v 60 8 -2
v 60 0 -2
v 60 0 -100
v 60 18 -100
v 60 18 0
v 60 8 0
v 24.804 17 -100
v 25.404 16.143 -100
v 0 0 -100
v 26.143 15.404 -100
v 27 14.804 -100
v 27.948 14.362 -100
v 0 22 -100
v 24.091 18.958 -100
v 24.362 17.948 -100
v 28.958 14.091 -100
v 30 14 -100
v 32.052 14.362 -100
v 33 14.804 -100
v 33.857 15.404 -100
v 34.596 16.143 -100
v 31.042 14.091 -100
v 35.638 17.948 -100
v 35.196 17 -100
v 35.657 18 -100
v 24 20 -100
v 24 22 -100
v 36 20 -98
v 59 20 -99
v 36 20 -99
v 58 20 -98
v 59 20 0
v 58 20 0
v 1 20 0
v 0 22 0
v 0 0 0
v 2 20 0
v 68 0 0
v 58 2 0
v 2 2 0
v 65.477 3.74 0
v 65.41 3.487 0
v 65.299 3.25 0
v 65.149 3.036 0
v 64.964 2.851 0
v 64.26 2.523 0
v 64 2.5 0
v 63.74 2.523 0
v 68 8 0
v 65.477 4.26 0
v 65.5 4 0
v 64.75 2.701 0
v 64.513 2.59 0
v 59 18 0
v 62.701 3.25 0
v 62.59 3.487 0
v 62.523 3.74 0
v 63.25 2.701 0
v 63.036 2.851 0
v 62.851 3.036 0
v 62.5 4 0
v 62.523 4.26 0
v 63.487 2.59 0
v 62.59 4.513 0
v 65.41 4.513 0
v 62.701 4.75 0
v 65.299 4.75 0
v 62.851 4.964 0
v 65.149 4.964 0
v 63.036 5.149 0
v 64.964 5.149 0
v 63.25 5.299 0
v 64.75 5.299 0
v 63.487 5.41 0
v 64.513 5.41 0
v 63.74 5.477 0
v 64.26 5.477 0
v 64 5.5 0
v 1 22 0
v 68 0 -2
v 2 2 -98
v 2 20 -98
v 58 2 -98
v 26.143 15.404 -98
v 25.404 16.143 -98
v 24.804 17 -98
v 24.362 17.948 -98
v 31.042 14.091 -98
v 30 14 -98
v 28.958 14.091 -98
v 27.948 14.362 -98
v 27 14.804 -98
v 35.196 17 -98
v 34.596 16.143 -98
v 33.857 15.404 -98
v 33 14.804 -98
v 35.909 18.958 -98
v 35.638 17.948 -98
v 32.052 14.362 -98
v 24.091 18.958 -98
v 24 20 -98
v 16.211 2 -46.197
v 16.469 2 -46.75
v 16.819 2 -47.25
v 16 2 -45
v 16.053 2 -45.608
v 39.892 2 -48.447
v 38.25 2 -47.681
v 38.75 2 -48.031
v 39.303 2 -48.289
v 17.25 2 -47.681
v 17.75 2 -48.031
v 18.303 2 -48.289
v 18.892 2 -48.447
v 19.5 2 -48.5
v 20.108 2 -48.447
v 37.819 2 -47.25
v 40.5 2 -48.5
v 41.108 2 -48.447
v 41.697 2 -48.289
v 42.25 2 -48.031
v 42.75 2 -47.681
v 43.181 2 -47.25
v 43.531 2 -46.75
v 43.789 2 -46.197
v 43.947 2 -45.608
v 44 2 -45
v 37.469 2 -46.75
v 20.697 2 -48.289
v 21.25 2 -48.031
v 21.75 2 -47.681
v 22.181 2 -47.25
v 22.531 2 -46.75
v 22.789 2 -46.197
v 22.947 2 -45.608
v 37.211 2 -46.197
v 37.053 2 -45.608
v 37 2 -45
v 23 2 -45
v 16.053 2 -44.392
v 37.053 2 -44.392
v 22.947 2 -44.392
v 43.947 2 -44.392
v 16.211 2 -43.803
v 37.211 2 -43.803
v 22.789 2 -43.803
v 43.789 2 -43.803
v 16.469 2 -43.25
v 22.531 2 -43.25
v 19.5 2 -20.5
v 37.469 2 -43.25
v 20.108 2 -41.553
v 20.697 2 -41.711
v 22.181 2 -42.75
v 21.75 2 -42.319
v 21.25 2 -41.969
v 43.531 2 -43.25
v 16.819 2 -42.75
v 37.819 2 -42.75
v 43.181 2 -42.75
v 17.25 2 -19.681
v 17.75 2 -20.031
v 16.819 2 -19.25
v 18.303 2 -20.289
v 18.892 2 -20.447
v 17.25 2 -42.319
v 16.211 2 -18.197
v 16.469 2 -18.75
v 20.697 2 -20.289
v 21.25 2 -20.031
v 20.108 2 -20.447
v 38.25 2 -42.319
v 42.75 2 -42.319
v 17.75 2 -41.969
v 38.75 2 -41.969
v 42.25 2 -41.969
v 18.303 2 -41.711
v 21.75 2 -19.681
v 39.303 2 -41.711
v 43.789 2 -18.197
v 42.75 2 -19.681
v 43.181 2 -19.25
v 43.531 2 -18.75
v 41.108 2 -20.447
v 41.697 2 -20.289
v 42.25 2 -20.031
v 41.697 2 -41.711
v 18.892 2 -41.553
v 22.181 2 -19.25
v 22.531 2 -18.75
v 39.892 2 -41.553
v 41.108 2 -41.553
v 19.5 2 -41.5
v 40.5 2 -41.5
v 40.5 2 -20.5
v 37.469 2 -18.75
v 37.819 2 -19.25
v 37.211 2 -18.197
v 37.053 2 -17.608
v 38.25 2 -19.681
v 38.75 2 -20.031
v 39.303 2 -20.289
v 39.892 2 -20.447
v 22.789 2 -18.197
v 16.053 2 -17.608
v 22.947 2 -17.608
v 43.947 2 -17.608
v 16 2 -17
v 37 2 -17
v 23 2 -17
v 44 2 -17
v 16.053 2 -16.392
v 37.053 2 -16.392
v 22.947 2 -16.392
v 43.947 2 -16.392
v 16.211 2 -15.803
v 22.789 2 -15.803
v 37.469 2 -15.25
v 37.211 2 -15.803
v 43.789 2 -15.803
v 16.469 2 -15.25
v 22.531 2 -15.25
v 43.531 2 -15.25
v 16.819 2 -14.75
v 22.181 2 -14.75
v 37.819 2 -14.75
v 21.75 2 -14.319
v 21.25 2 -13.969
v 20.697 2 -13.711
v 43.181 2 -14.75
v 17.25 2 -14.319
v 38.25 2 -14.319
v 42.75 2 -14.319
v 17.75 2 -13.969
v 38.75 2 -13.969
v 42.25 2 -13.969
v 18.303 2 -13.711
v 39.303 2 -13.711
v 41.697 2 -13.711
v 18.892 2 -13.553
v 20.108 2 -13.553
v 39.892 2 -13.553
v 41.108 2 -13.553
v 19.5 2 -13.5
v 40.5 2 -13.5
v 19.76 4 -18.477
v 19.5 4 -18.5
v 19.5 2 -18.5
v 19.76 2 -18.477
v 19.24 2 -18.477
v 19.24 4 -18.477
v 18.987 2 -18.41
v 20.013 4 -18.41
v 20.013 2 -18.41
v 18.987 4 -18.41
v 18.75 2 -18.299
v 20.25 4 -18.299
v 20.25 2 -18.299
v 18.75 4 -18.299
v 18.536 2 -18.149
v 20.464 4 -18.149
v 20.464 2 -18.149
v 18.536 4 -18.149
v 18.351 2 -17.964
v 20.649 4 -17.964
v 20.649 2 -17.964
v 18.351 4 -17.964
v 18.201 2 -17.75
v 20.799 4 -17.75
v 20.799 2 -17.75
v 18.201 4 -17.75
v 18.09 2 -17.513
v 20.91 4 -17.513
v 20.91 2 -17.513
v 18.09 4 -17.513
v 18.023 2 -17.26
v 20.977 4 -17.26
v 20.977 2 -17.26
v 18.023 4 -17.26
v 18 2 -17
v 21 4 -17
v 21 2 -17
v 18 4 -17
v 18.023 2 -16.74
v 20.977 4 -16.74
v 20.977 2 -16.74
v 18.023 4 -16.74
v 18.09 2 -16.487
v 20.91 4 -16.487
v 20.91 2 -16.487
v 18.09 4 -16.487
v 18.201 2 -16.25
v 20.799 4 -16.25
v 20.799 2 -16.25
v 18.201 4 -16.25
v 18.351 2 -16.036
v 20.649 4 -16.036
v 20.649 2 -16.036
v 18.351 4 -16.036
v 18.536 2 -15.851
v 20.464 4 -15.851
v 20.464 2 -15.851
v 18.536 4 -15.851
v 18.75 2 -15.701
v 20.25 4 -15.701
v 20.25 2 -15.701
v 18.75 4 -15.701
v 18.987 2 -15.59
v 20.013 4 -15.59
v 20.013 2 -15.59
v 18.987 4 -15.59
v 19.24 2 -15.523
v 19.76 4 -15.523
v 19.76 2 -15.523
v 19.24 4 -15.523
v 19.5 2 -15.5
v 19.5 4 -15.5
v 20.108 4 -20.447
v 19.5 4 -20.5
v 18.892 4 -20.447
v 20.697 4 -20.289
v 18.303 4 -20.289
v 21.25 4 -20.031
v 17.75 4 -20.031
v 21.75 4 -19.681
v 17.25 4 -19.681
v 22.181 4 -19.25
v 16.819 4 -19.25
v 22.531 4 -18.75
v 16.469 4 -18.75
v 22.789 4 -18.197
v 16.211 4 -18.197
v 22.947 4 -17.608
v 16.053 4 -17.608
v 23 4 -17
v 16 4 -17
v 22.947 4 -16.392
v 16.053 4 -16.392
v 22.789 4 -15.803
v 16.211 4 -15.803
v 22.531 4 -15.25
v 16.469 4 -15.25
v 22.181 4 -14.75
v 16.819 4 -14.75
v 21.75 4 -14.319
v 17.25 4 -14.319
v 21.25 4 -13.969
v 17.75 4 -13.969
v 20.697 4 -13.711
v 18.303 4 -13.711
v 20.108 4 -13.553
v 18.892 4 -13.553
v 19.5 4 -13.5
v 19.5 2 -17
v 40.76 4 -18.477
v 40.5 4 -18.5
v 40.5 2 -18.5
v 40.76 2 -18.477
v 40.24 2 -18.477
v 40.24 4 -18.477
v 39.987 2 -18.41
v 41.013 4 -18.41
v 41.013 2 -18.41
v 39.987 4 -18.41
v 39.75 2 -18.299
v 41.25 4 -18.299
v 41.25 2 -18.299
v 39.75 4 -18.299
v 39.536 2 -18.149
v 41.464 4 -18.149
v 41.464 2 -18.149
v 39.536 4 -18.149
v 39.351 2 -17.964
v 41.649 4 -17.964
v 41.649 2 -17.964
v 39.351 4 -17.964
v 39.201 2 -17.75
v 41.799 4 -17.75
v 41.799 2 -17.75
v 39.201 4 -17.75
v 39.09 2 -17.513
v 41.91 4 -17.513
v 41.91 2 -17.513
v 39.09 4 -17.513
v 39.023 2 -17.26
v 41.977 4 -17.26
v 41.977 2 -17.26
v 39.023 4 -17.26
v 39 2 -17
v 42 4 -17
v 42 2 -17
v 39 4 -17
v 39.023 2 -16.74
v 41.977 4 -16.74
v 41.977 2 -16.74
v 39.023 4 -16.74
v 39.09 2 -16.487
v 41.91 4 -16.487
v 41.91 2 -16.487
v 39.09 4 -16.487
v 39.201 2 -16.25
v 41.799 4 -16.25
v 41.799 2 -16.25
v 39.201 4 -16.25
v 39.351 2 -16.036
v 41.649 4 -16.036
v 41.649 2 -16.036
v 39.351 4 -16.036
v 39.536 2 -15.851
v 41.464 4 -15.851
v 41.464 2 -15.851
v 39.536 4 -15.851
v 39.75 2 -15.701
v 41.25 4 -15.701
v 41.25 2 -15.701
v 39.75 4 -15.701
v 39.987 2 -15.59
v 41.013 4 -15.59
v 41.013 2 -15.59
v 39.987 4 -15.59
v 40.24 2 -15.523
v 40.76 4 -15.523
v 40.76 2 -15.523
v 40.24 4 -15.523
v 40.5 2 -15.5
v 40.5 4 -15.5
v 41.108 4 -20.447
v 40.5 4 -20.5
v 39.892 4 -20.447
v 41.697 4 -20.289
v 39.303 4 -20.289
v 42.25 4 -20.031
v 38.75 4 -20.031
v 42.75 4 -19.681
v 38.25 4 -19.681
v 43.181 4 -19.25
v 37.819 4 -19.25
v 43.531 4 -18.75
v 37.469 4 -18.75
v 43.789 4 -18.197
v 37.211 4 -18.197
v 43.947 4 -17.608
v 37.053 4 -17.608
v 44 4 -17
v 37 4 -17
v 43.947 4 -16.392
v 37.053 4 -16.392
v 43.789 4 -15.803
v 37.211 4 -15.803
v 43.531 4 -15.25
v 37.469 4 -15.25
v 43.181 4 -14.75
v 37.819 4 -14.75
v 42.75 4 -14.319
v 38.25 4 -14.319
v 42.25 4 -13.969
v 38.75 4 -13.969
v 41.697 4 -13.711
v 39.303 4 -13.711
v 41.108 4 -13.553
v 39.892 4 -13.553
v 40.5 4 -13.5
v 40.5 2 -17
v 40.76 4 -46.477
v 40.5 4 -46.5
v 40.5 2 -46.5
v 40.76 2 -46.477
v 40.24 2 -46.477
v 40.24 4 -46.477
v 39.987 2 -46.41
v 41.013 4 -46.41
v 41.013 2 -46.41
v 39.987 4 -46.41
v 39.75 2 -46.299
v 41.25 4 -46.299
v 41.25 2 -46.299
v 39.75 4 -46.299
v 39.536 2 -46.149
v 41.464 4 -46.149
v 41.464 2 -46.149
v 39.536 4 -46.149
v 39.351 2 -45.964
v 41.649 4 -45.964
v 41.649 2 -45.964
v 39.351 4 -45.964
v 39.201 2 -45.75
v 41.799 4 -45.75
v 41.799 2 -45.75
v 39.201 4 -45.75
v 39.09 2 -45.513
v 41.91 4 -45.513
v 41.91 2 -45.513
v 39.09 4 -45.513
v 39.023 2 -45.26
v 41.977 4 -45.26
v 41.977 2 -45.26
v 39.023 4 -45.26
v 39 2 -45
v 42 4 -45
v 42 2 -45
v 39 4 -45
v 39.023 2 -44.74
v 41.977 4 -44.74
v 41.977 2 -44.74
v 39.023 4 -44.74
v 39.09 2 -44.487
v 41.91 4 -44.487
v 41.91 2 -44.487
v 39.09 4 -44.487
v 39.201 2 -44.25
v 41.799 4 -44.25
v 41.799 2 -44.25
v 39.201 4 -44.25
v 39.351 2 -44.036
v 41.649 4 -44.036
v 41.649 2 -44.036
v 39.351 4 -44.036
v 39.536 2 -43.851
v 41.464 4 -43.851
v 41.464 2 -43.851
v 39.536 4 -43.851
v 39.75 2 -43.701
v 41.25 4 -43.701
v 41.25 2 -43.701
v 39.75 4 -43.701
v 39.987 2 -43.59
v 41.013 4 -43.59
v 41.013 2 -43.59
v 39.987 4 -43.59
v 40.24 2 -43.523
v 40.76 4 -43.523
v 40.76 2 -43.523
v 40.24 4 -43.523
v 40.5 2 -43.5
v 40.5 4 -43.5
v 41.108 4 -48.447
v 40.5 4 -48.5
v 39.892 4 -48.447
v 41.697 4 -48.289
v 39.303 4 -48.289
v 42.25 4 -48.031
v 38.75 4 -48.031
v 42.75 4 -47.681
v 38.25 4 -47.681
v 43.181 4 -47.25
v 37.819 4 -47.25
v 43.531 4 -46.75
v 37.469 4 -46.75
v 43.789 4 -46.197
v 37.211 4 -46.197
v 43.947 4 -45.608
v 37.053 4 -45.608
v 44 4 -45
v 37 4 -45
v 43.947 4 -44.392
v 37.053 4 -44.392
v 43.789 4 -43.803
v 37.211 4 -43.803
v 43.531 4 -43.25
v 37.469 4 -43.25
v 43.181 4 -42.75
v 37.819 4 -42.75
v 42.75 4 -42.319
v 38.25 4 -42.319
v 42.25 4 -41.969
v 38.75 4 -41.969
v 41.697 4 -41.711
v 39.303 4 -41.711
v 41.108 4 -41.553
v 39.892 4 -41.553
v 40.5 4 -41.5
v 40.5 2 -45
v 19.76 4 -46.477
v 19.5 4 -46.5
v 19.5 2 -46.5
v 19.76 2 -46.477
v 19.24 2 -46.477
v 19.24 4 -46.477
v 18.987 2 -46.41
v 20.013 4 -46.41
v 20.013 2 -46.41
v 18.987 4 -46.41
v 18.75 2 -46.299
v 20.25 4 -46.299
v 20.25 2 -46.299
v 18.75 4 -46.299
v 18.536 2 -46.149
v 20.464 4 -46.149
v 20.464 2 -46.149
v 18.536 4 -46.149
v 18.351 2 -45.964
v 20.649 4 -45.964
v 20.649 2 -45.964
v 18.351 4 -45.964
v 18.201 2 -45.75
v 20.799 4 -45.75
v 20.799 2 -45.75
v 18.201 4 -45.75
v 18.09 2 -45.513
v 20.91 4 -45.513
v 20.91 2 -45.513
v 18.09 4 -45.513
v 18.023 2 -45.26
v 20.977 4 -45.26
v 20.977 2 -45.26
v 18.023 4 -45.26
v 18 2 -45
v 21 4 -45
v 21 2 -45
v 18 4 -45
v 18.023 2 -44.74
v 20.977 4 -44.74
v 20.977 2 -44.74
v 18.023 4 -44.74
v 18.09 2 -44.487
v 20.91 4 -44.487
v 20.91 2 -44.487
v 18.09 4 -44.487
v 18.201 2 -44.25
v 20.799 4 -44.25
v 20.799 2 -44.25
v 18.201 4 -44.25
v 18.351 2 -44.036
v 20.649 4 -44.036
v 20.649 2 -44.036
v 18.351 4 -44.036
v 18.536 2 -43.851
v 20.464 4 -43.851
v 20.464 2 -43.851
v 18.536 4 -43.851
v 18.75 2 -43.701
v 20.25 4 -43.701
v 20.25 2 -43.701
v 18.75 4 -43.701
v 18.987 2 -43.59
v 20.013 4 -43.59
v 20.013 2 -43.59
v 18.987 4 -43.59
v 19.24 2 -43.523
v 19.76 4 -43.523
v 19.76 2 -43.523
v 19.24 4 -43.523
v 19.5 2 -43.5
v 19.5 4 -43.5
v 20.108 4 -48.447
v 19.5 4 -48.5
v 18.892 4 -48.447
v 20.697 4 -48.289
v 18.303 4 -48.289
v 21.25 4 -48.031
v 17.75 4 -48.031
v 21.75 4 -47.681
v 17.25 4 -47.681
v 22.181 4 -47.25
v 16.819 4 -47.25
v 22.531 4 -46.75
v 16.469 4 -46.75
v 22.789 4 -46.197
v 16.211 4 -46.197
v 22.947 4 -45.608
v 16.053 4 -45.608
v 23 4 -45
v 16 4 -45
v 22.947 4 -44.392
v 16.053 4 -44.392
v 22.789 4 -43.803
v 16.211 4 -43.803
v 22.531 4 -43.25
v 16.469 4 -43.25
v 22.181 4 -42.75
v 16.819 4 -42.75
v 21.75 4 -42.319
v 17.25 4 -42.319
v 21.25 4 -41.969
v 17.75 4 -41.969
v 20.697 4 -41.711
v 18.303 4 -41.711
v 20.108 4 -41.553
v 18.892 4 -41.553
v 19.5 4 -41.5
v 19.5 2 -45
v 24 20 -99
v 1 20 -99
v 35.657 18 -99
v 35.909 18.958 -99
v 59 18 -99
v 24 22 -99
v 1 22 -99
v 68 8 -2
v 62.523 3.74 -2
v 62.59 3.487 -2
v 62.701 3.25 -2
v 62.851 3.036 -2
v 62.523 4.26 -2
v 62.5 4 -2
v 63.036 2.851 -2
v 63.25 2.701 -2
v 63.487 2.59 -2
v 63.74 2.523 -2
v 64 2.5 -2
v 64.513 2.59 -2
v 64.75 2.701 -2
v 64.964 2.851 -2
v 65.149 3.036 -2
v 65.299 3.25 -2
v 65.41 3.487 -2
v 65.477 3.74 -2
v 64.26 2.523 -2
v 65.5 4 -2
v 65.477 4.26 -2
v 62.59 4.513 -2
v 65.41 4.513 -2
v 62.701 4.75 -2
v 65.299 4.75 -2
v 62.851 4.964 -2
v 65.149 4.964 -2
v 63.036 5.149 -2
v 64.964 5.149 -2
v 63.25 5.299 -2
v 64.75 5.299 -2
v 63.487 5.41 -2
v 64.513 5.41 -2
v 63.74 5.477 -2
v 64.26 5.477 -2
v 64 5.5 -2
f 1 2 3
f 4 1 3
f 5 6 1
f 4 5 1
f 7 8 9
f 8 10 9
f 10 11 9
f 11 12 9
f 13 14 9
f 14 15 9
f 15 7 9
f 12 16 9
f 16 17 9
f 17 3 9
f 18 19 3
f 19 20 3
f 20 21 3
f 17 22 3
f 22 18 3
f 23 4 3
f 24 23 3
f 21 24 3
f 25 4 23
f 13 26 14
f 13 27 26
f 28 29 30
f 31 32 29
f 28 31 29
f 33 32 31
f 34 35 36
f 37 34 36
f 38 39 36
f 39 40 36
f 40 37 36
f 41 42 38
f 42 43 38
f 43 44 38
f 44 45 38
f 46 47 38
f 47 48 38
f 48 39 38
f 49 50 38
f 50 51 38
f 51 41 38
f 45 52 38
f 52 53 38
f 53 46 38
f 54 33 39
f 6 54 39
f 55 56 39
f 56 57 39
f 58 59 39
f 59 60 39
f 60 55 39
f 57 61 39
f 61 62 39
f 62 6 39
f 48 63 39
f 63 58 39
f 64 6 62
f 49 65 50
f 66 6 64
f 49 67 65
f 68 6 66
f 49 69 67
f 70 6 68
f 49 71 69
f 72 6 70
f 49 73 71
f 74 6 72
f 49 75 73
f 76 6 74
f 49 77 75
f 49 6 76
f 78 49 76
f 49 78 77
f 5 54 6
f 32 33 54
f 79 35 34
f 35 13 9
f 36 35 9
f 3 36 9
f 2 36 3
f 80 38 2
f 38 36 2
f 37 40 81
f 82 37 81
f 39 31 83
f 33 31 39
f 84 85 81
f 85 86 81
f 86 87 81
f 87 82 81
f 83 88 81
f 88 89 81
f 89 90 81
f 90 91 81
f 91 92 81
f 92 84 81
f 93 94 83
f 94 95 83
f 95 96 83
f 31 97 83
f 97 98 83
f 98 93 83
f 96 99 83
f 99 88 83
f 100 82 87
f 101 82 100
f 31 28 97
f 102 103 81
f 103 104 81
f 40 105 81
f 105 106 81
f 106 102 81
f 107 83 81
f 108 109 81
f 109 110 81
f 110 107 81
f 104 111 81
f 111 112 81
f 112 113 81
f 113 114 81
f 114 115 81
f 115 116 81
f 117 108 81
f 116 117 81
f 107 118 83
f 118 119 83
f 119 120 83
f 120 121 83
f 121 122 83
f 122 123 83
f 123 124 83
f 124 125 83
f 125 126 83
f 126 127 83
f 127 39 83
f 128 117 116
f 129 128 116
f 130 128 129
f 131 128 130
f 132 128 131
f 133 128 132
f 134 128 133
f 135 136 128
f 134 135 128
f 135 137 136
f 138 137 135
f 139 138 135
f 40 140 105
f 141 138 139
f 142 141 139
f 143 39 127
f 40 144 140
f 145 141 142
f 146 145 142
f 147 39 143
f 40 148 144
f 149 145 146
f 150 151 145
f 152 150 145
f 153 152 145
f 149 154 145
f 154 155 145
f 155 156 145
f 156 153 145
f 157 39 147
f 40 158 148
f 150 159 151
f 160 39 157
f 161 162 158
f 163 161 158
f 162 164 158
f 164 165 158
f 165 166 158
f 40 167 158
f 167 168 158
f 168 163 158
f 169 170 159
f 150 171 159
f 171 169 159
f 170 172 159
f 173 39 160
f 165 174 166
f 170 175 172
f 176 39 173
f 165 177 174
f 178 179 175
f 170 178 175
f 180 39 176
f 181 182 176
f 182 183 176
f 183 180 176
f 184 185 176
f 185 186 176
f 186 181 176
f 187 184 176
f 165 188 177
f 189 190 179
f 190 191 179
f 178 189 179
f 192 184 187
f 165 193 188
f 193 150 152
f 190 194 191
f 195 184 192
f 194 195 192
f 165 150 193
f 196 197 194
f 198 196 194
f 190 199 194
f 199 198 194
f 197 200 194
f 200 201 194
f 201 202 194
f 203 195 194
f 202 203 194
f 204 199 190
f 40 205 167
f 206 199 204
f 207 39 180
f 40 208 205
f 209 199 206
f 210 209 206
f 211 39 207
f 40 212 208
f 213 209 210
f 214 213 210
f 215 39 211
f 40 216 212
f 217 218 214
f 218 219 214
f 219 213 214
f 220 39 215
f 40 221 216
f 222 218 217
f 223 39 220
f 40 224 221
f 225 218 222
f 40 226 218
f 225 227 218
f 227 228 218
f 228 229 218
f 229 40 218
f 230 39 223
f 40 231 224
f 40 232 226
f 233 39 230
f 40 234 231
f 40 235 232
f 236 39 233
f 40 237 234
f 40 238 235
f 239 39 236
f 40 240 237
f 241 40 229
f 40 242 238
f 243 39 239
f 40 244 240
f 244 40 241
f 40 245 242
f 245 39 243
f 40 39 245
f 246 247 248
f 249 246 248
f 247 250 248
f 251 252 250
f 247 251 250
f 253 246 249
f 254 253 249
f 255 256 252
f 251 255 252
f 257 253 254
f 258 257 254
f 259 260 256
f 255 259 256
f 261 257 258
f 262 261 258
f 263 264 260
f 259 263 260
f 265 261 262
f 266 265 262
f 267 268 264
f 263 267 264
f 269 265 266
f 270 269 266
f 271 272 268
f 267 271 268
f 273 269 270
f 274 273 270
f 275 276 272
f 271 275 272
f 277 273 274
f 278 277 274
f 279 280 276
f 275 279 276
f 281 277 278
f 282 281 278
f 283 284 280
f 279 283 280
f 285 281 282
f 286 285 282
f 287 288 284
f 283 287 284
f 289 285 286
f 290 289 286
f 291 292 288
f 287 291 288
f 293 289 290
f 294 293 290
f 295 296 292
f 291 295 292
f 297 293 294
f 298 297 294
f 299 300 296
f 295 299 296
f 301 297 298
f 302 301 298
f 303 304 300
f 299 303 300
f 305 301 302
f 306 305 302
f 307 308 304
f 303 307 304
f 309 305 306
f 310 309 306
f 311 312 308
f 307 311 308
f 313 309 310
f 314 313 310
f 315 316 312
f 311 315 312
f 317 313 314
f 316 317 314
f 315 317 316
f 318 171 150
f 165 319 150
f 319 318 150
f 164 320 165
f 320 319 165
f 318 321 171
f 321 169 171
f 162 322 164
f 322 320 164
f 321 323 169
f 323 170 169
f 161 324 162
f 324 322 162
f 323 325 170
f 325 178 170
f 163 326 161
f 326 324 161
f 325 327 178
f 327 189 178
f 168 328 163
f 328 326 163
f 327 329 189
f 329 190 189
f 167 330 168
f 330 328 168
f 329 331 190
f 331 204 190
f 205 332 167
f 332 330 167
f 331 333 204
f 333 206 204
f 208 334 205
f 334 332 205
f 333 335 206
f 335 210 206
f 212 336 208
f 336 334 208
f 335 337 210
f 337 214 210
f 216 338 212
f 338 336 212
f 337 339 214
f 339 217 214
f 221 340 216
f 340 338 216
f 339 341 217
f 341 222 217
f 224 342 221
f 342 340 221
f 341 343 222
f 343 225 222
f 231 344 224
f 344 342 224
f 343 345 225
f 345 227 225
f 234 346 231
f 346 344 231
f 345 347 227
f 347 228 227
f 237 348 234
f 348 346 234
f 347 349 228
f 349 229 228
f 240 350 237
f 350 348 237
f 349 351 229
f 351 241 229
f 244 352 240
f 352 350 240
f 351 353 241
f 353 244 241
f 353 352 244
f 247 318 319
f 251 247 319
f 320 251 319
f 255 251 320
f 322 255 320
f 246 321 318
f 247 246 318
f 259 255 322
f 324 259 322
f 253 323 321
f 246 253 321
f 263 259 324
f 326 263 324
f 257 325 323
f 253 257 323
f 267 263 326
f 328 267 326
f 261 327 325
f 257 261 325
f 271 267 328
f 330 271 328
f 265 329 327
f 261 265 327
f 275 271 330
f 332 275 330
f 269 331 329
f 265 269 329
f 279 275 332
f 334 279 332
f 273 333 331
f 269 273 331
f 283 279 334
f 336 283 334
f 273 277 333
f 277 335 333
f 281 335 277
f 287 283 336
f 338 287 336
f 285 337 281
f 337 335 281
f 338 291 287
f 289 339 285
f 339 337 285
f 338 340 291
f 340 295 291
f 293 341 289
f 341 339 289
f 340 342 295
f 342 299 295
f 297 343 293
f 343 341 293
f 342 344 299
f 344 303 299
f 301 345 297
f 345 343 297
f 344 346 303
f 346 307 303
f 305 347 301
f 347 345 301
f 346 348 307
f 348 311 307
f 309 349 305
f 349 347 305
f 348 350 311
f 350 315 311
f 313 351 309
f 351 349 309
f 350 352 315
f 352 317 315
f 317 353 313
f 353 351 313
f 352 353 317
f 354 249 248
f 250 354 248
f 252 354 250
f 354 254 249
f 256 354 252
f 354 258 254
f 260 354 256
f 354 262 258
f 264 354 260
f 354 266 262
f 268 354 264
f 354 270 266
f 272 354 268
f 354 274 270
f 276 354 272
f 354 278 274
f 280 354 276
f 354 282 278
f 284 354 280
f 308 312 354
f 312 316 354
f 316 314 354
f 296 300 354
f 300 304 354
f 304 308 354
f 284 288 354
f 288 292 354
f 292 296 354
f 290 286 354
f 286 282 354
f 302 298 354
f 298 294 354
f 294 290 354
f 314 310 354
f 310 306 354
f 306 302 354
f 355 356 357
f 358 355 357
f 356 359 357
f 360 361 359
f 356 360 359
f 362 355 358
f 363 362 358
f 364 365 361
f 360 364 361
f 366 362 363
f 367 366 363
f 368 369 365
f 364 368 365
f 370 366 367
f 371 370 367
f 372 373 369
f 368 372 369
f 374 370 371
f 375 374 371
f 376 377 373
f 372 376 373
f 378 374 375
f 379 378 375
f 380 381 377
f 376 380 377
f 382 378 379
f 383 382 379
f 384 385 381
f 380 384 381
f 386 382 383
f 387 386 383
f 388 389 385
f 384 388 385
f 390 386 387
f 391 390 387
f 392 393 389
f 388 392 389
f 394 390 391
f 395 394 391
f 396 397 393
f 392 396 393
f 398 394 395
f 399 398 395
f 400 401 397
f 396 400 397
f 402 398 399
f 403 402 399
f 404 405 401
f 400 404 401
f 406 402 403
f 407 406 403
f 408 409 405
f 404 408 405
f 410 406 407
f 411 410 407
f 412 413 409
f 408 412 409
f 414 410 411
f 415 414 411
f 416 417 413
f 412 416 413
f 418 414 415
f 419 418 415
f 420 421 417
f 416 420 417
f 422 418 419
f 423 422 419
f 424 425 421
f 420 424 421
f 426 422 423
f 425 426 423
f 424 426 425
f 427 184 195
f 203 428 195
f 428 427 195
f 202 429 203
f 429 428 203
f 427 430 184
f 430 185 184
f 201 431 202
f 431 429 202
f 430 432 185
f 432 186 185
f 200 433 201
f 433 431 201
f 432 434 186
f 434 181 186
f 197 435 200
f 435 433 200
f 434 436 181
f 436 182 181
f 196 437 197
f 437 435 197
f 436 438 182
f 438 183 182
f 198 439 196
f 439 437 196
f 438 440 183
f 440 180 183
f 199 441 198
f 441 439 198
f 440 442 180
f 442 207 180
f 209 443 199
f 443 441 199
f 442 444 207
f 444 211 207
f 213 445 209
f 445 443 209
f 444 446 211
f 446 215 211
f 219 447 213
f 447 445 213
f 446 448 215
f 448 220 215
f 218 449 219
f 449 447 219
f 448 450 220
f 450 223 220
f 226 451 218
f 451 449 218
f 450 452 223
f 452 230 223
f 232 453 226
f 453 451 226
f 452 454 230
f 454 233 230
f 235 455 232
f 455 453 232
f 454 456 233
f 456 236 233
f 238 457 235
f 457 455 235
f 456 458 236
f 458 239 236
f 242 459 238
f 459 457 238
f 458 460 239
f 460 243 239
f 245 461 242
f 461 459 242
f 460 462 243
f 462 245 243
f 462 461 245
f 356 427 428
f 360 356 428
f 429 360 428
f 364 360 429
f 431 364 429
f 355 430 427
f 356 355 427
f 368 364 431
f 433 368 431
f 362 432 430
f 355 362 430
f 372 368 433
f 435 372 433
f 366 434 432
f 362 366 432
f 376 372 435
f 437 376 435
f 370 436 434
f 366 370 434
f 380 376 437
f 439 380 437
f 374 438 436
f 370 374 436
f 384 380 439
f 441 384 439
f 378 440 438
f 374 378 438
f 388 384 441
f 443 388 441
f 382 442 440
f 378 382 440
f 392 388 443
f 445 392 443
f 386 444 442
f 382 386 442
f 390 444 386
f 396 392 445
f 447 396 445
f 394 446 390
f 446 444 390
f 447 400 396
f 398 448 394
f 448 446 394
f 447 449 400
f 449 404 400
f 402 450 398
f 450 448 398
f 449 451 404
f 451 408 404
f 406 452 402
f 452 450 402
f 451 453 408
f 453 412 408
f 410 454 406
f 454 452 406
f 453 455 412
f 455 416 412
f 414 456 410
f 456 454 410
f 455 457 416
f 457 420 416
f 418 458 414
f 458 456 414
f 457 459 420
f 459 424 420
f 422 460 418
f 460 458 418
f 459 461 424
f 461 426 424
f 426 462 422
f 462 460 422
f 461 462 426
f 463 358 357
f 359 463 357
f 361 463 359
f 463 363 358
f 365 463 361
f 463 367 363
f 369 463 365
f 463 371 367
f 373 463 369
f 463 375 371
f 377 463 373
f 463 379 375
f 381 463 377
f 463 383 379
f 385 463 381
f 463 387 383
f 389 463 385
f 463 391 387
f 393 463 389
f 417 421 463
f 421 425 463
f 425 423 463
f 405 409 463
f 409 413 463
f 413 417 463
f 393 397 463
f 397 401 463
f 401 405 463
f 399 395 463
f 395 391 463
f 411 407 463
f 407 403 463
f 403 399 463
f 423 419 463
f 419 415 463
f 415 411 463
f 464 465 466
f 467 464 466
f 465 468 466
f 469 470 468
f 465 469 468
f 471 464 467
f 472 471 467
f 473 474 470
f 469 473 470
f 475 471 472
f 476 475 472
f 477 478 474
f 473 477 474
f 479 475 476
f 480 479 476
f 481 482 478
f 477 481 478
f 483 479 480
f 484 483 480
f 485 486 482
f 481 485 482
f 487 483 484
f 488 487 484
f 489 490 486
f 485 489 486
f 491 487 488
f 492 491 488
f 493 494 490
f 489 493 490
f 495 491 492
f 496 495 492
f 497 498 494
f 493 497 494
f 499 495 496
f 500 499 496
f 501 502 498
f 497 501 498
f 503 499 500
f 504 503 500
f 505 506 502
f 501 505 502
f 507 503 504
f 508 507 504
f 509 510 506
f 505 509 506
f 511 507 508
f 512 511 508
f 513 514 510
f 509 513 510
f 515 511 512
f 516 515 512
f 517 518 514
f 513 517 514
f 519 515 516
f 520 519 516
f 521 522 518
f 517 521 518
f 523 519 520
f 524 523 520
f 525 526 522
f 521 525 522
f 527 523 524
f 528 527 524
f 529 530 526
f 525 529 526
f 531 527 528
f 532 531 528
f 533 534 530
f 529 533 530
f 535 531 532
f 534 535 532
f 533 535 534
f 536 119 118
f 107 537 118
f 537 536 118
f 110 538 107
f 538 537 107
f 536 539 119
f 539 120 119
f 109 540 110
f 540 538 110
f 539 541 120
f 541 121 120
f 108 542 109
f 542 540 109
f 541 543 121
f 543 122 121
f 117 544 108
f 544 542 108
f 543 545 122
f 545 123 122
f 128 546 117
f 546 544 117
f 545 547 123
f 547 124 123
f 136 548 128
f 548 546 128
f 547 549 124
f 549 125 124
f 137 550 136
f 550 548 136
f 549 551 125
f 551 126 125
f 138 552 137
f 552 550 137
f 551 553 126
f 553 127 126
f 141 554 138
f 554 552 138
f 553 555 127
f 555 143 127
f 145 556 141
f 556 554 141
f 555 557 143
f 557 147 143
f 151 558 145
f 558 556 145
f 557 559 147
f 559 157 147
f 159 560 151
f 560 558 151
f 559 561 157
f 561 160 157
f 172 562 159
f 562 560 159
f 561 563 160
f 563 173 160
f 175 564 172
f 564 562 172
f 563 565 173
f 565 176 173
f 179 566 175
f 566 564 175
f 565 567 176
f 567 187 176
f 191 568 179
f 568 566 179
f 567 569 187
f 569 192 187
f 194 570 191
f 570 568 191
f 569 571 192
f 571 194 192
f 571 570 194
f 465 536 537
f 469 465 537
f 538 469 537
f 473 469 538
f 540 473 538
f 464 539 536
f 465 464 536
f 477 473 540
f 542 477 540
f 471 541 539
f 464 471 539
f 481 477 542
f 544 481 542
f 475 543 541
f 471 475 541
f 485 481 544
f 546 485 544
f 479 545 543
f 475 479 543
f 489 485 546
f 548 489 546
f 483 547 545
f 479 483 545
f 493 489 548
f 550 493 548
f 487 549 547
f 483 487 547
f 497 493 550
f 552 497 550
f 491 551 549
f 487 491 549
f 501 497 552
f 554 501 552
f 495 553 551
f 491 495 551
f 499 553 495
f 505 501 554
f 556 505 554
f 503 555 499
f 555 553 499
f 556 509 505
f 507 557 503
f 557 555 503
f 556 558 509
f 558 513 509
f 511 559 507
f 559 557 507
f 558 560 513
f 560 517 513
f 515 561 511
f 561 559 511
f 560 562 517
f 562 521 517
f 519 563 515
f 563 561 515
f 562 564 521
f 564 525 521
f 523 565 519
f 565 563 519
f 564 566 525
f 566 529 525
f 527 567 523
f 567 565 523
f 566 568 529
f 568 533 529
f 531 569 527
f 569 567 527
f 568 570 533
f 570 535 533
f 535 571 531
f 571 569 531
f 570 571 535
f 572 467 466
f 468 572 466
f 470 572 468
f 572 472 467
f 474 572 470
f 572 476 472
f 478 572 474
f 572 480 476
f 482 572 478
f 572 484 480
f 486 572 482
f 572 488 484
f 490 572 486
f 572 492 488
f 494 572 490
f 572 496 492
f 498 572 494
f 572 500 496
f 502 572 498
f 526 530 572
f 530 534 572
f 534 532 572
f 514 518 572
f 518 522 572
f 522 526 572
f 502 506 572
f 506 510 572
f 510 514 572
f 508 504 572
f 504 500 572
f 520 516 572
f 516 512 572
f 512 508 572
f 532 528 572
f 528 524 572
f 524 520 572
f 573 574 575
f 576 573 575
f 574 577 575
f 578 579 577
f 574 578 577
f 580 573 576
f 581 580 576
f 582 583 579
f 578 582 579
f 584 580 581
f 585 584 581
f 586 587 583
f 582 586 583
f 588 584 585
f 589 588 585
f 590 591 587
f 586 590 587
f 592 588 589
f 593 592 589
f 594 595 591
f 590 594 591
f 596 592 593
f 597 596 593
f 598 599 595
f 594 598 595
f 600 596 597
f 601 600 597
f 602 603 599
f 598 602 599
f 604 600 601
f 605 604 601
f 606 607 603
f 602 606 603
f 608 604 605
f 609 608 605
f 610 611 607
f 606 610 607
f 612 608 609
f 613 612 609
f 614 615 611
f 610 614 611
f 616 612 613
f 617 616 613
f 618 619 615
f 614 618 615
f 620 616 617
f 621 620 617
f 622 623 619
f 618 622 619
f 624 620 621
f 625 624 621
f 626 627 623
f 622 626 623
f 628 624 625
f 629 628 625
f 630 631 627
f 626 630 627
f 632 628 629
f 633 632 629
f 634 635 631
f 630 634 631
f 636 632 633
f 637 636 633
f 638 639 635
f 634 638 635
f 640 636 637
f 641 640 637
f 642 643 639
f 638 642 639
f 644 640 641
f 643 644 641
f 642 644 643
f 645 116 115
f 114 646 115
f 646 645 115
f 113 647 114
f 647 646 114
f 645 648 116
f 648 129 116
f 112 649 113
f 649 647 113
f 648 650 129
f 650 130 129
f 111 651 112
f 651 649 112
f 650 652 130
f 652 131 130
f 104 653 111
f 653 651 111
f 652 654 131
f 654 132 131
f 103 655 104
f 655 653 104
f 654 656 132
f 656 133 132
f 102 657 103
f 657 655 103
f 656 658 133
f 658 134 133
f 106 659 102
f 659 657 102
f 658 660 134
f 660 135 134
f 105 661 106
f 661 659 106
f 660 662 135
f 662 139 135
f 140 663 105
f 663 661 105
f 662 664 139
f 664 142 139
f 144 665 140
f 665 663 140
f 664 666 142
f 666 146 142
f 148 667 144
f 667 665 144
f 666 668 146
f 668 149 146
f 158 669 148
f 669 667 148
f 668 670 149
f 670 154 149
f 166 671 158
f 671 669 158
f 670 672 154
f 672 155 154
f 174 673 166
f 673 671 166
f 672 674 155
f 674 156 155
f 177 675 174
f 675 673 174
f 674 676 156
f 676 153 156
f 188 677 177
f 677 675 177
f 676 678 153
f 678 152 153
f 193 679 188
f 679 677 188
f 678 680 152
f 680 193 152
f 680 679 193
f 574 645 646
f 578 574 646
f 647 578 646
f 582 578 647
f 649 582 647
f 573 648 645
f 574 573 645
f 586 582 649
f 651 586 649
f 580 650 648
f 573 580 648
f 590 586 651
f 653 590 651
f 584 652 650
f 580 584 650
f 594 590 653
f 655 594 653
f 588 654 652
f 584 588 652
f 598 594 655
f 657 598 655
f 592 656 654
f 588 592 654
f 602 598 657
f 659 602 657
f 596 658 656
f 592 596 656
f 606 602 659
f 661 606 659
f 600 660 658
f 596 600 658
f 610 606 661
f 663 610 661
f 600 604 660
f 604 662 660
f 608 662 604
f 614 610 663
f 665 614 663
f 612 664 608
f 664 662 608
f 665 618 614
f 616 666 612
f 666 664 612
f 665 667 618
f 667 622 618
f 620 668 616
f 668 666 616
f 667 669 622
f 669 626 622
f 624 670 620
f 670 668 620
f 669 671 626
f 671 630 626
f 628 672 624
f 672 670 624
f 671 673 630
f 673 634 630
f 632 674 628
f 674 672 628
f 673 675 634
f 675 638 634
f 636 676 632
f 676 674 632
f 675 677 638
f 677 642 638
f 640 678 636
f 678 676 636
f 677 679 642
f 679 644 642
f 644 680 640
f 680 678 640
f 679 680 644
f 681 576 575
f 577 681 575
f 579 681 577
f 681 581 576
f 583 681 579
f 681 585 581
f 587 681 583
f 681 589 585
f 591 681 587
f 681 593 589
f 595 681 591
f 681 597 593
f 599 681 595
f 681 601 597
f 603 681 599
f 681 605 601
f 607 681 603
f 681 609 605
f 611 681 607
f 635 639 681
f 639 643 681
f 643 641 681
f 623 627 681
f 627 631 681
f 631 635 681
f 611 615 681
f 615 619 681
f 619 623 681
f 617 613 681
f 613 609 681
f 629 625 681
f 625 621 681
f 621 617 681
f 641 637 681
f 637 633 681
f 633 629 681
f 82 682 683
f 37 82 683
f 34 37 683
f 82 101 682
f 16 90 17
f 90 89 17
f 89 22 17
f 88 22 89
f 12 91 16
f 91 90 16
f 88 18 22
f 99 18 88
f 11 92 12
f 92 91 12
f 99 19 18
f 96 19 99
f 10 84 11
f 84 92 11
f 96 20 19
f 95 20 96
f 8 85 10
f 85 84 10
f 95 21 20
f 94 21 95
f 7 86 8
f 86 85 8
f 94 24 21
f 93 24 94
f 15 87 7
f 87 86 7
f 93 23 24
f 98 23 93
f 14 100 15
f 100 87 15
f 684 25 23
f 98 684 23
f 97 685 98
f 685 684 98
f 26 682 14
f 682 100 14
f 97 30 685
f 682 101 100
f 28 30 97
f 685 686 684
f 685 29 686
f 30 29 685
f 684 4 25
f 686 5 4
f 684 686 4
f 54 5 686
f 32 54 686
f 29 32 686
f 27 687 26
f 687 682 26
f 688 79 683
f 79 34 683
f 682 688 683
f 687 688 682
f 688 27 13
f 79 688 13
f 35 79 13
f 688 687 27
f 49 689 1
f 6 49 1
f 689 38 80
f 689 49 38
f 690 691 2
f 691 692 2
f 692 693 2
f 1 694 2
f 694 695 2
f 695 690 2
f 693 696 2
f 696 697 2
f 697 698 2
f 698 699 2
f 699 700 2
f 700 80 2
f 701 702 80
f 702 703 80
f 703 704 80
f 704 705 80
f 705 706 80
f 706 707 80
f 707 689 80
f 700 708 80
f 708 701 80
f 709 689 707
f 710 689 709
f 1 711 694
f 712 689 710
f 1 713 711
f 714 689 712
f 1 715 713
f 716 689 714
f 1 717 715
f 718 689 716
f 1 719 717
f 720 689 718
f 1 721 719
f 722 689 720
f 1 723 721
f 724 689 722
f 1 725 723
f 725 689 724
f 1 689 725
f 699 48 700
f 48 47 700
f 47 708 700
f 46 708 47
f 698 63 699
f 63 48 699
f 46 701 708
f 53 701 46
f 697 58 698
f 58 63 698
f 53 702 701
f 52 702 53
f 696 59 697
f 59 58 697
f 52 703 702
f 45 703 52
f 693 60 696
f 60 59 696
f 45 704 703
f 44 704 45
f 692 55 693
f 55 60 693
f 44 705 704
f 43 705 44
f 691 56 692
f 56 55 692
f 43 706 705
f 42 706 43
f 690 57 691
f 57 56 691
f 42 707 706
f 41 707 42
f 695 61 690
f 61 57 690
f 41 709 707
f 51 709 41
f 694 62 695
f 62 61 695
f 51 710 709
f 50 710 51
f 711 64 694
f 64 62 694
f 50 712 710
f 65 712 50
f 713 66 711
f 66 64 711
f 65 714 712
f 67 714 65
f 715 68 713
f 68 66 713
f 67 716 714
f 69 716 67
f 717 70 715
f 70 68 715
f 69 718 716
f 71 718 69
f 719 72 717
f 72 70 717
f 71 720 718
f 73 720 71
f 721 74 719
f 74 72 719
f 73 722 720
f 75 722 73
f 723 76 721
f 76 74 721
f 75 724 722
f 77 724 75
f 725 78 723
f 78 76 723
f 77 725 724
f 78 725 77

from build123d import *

# Parameters (mm, degrees)
SKETCH3_W           = 60
SKETCH3_H           = 100
BOSS_EXTRUDE1_DEPTH = 40
SHELL1_T            = -2
SKETCH2_R           = 3.5
SKETCH2_R_2         = 1.5
BOSS_EXTRUDE2_DEPTH = 2
CUT_EXTRUDE1_REACH  = 120.322
SKETCH4_W           = 60
SKETCH4_H           = 100
CUT_EXTRUDE2_REACH  = 118.636
SKETCH5_R           = 6
CUT_EXTRUDE3_DEPTH  = 2
BOSS_EXTRUDE3_DEPTH = 2
SKETCH7_W           = 8
SKETCH7_H           = 8
SKETCH7_R           = 1.5
BOSS_EXTRUDE4_DEPTH = 2


with BuildPart() as part:
    # Sketch3 → Boss-Extrude1 (new body)
    with BuildSketch(Plane(origin=(0, 0, 0), x_dir=(1, 0, 0), z_dir=(0, 1, 0))):
        with Locations((30, 50)):
            Rectangle(SKETCH3_W, SKETCH3_H)
    extrude(amount=BOSS_EXTRUDE1_DEPTH)

    # Shell1
    shell1_openings = [part.faces().sort_by_distance(p)[0] for p in [
        (30, 20, 0),
    ]]
    offset(amount=SHELL1_T, openings=shell1_openings, kind=Kind.INTERSECTION)

    # Sketch2 → Boss-Extrude2 (add)
    # profile 1 of 4: a face of its own
    with BuildSketch(Plane(origin=(0, 2, 0), x_dir=(1, 0, 0), z_dir=(0, 1, 0))):
        with Locations((19.5, 45)):
            Circle(SKETCH2_R)
        with Locations((19.5, 45)):
            Circle(SKETCH2_R_2, mode=Mode.SUBTRACT)
    # profile 2 of 4: a face of its own
    with BuildSketch(Plane(origin=(0, 2, 0), x_dir=(1, 0, 0), z_dir=(0, 1, 0))):
        with Locations((40.5, 45)):
            Circle(SKETCH2_R)
        with Locations((40.5, 45)):
            Circle(SKETCH2_R_2, mode=Mode.SUBTRACT)
    # profile 3 of 4: a face of its own
    with BuildSketch(Plane(origin=(0, 2, 0), x_dir=(1, 0, 0), z_dir=(0, 1, 0))):
        with Locations((40.5, 17)):
            Circle(SKETCH2_R)
        with Locations((40.5, 17)):
            Circle(SKETCH2_R_2, mode=Mode.SUBTRACT)
    # profile 4 of 4: a face of its own
    with BuildSketch(Plane(origin=(0, 2, 0), x_dir=(1, 0, 0), z_dir=(0, 1, 0))):
        with Locations((19.5, 17)):
            Circle(SKETCH2_R)
        with Locations((19.5, 17)):
            Circle(SKETCH2_R_2, mode=Mode.SUBTRACT)
    extrude(amount=BOSS_EXTRUDE2_DEPTH)

    # Sketch4 → Cut-Extrude1 (cut, up to next)
    with BuildSketch(Plane(origin=(0, 20, 0), x_dir=(1, 0, 0), z_dir=(0, 1, 0)), mode=Mode.PRIVATE) as cut_extrude1_sk1:
        with Locations((30, 50)):
            Rectangle(SKETCH4_W, SKETCH4_H)
    cut_extrude1_tool1 = extrude(cut_extrude1_sk1.sketch, amount=CUT_EXTRUDE1_REACH, mode=Mode.PRIVATE) & part.part
    add(cut_extrude1_tool1.solids().sort_by_distance((30, 20, -50))[0], mode=Mode.SUBTRACT)

    # Sketch5 → Cut-Extrude2 (cut, up to next)
    with BuildSketch(Plane.XY.offset(-98), mode=Mode.PRIVATE) as cut_extrude2_sk1:
        with Locations((30, 20)):
            Circle(SKETCH5_R)
    cut_extrude2_tool1 = extrude(cut_extrude2_sk1.sketch, amount=-CUT_EXTRUDE2_REACH, mode=Mode.PRIVATE) & part.part
    add(cut_extrude2_tool1.solids().sort_by_distance((30, 20, -98))[0], mode=Mode.SUBTRACT)

    # Sketch6 → Cut-Extrude3 (cut)
    with BuildSketch(Plane(origin=(0, 20, 0), x_dir=(1, 0, 0), z_dir=(0, 1, 0))):
        Polygon((30, 100), (30, 99), (59, 99), (59, 0), (60, 0), (60, 100), align=None)
    extrude(amount=-CUT_EXTRUDE3_DEPTH, mode=Mode.SUBTRACT)

    # Sketch6<3> → Boss-Extrude3 (add)
    with BuildSketch(Plane(origin=(0, 20, 0), x_dir=(1, 0, 0), z_dir=(0, 1, 0))):
        Polygon((24, 99), (24, 100), (0, 100), (0, 0), (1, 0), (1, 99), align=None)
    extrude(amount=BOSS_EXTRUDE3_DEPTH)

    # Sketch7 → Boss-Extrude4 (add)
    with BuildSketch(Plane.XY):
        with Locations((64, 4)):
            Rectangle(SKETCH7_W, SKETCH7_H)
        with Locations((64, 4)):
            Circle(SKETCH7_R, mode=Mode.SUBTRACT)
    extrude(amount=-BOSS_EXTRUDE4_DEPTH)


solid = part.part
